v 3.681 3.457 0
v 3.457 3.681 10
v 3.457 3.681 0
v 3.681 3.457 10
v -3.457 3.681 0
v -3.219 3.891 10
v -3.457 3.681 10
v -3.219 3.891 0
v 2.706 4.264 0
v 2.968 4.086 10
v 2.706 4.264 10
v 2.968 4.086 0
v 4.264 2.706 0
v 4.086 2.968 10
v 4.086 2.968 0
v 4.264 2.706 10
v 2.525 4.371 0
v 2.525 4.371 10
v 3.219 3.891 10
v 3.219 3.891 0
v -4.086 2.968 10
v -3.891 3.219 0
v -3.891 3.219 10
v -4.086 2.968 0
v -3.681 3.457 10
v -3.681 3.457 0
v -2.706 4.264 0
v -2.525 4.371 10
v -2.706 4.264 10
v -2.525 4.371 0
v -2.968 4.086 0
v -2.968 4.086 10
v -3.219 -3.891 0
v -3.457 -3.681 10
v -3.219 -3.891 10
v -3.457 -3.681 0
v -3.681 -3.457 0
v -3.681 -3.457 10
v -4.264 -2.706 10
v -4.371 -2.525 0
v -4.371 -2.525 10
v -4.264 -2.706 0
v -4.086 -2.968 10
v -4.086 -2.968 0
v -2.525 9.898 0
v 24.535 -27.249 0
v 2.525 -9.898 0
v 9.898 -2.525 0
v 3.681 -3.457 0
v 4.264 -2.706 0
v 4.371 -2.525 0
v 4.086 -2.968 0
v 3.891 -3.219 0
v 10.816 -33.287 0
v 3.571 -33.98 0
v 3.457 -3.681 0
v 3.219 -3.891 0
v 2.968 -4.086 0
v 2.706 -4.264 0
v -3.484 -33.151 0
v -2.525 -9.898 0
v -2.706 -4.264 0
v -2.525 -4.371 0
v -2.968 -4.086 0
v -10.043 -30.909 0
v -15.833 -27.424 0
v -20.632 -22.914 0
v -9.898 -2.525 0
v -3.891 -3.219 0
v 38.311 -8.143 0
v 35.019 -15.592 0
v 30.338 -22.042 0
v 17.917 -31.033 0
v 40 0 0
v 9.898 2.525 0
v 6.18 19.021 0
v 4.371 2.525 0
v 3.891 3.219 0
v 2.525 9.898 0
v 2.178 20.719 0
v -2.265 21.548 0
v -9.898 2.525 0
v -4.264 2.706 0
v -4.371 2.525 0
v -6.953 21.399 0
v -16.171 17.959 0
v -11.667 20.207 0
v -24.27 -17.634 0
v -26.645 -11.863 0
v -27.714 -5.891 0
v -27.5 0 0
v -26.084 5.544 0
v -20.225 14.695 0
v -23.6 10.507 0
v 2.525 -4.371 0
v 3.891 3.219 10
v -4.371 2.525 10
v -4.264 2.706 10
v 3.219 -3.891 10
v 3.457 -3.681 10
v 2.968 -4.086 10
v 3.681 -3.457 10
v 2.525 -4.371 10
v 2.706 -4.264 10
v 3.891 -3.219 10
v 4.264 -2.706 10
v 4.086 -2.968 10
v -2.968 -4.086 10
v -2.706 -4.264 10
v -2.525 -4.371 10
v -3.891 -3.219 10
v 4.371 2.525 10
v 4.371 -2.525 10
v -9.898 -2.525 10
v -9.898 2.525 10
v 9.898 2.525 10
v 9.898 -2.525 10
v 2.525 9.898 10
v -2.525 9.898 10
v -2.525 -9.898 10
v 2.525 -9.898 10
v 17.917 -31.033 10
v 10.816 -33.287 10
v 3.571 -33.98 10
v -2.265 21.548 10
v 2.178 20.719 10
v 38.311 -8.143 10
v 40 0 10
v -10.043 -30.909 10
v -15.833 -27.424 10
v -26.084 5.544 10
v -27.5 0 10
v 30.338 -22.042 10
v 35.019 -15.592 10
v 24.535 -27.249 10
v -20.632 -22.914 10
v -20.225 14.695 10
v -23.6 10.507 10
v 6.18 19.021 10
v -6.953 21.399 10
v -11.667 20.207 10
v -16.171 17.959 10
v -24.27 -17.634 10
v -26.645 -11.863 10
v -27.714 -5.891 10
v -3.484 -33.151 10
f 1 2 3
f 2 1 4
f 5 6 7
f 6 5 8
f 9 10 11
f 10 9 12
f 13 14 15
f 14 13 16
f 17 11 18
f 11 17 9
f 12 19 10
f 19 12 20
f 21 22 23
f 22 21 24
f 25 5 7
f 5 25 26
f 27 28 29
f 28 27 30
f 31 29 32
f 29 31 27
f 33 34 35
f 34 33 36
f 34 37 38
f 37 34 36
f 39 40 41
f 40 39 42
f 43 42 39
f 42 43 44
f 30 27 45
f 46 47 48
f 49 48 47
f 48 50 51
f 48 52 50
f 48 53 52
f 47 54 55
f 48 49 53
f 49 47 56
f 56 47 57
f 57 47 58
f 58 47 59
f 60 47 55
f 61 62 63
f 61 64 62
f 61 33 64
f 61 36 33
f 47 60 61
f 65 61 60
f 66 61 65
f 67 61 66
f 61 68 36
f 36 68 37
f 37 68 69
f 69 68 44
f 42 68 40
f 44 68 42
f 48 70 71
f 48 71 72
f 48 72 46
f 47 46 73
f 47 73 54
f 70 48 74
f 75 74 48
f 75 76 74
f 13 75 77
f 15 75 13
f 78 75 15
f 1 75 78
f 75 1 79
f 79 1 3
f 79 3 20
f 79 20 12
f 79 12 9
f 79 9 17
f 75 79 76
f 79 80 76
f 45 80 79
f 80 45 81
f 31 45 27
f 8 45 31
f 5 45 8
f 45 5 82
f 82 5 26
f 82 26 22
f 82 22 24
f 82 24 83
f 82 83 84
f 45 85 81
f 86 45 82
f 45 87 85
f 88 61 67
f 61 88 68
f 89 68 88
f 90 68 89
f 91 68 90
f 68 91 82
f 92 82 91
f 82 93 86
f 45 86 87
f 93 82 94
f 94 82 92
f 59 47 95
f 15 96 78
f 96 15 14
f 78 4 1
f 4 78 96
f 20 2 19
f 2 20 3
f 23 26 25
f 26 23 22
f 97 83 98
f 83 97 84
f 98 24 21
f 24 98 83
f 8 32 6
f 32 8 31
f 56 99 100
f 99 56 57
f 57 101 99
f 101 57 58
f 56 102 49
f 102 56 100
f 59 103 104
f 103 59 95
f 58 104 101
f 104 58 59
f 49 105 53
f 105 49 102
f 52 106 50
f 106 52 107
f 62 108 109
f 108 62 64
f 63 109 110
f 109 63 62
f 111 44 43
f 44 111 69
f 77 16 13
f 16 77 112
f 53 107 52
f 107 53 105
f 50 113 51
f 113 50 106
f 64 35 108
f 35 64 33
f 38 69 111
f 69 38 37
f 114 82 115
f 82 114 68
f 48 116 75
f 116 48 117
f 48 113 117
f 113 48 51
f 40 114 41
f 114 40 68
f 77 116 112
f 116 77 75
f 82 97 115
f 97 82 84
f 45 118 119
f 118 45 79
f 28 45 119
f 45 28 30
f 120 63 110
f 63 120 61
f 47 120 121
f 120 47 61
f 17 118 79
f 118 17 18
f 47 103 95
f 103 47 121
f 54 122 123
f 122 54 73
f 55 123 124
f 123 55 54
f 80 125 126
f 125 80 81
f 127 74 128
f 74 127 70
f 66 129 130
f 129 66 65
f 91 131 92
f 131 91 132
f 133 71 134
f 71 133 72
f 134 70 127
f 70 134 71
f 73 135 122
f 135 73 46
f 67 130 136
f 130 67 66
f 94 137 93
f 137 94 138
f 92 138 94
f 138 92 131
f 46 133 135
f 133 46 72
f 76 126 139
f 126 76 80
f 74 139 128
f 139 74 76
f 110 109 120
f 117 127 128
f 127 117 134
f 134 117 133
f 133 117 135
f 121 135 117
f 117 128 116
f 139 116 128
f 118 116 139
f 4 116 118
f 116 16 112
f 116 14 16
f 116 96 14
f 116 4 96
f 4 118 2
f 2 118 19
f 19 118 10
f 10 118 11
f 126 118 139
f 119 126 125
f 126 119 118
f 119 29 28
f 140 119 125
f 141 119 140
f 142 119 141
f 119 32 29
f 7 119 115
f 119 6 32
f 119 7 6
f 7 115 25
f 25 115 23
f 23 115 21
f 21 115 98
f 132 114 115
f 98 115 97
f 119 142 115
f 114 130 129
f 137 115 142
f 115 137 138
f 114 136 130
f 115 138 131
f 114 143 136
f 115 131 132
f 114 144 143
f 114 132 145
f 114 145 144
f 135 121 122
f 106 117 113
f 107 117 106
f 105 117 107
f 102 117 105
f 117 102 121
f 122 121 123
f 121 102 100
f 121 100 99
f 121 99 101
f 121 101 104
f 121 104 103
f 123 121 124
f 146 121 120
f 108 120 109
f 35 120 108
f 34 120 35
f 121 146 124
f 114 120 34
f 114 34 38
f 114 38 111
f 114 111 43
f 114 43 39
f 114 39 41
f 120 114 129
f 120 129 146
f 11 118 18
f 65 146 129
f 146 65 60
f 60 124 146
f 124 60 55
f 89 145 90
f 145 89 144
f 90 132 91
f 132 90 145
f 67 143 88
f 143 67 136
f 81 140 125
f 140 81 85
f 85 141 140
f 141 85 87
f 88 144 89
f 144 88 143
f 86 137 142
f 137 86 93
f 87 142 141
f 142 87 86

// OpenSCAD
// file: lib/dogs.scad
$fn=100;


dogblock = [20,20,10];
//dog(dogblock, type="small");
//dog(dogblock, type="large");
//cornerdog(dogblock, type="small");
//cornerdog(dogblock, type="large");
//handle(dogblock[2], "small");
//handle(dogblock[2], "large");
//pressureplate(dogblock[2]);

//pressurespiral(5, 10, 15);
//pressurespiral2(dogblock[2], 10, 15);
//turnkeyspiral(dogblock[2],"large", 20, 10); //biggest one that can fit on the sides
//turnkeyspiral(dogblock[2],"large", 60, 30);
//turnkeyspiral(dogblock[2],"large", 40, 15);
//spiralhandle();

//turnkey (dogblock[2]*2, "small");
//turnkey (dogblock[2]*2, "large");


module spiralhandle() {
    height=5;
    difference() {
        hull() {
            cylinder(height, 15, 15);
            translate([55,0,0]) cylinder(height,d=15);
        }
        // scale it one percent so the key will certainly fit
        rotate([0,0,45]) scale([1.01,1.01,1.01]) turnkey(height, "large"); 
    }
    
}
//Handle to clamp the stock
//the outer circle isn't concentric to the center one (in the hole)
//by turning it we put pressure on the material. Due to friction it
//stays in place
//Turn them upside down and you can use them as a wedge to lock the
//stock in place.
//Todo:  must have the geometry wrong, as the pressure functionality
//doesn't work yet.  It can be used as a wedge though.
module handle(h, type) {
  //we use half of the height to allow the use of "pressure" plates
  //to offer more flexibility
    
    //we don't use the half height to avoid friction when turning the handle
    height = h*0.48; 
    
    dogcyl(h, type);
    hull() {
        cylinder(height, 15, 15);
        translate([55,0,0]) cylinder(height,d=15);
    }
    //cylinder on the back to keep it flat on the bed
    translate([55,0,0]) cylinder(h,d=15);
    
    platediameter = dogdiameter(type);
    shift = dogdiameter("large")-platediameter;
    //cylinder to use pressure plate
    //depending on the size we need to shift it a bit
    //we won't make two types of pressure plates
    translate([0,-shift,0]) cylinder(h,d=dogdiameter("large")*2);
    //the line above should be a spiral
}

//We want to create a spiral, that with an equal amount of turning the
//presure increases equallly
//As such, for every degree turned, the pressure point should increase with
//the same distance
module pressurespiral(h, mind, maxd) {
    cyld = 1;
    travel = maxd-mind;
    degrees = 360;
    steps = 60;
    stepinc = degrees/steps;
    steptravel = travel/(steps*stepinc);
    
    
    for(i = [0:stepinc:degrees]) {
        rotate([0,0,i]) translate([mind-cyld/2+i*steptravel,0,0])
            cylinder(h,d=cyld);
    }
}

//improved pressurespiral using polygon (more efficient to generate)
module pressurespiral2(h, mind, maxd) {
    cyld = 1;
    travel = maxd-mind;
    degrees = 360;
    steps = 30; //deliberately not too much steps to provide enough friction
    stepinc = degrees/steps;
    steptravel = travel/(steps*stepinc);

    points=[
        for(i = [0:stepinc:degrees])
            [
                (mind+i*steptravel) * cos(i),
                (mind+i*steptravel) * sin(i)
            ]
    ];
    
    //add the hull as the space it fills up anyway, and the extra volume
    //should provide some extra strength
    hull()
        linear_extrude(h) polygon(points);
}


module turnkeyspiral (h, type, maxd, mind) {
    
    keywidth = 5;
    keylength = 2*mind;
    difference() {
        pressurespiral2(h, mind, maxd);
        // scale it one percent so the key will certainly fit
        scale([1.01,1.01,1.01]) turnkey (h, type); 
    }
}

module turnkey (h, type) {
    maxd = 2*dogdiameter("large")*0.99; // slightly reduce to make sure it fits the plate well
    mind = maxd - 10;
    keywidth = 5;
    keylength = 2*mind;
        translate([0,-dogdiameter(type)/2,0]) dogcyl(h,type);
        translate([-keylength/2,-keywidth/2,0]) cube([keylength,keywidth,h]);
        rotate([0,0,90]) translate([-keylength/2,-keywidth/2,0]) cube([keylength,keywidth,h]);
   
}

module pressureplate(h) {
    //we don't use the half height to avoid friction when turning the handle
    height = h*0.48;
    dia = dogdiameter("large");
    difference() {
        cube([40,50,height]);
        translate([dia+5, dia+10,0]) cylinder(h,d=dia*2+1); //1mm larger to allow to turn
    }
}



//dog with 90 degree corner section
module cornerdog(s, type) {
    difference() {
        union() {
            half=[s[0]/2,s[1],s[2]];
            translate([-3,0,0]) finnedblock(s);
            translate([0,-s[1]+3,0]) rotate([0,0,90]) finnedblock(s);
            rotate([0,0,45]) translate([-half[0]/2,0,0]) finnedblock(half);
            d = dogdiameter (type);
            translate([-d/2,0,0]) dogcyl(s[2],type);
            
        }
        cylinder(s[2],2,2);
        translate([0,0,s[2]]) sphere(r=2);
    }
}


//complete dog with finned block and dogcylinder
module dog(s, type) {
    finnedblock(s);
    translate([s[0]/2,0]) {
        dogcyl(s[2], type);
    }    
}

//finned block to save some material when printing
module finnedblock(s,finwidth=3, findepthratio=0.7) {
    x=s[0];
    y=s[1];
    z=s[2];
    cube([x,y*(1-findepthratio),z]);
    
    //optimize by creating fins to reduce material
    //there are always an uneven number of fins; always a fin at the ends
    fincount = ceil((x/finwidth)/2);
    fingap = (x - fincount*finwidth)/(fincount-1);
    findepth = findepthratio*y;

    for(i=[0:fincount-1]) {
        translate([i*(fingap+finwidth),y-findepth,0]) {
        cube([finwidth, findepth, z], center=false);
        }
    }    
}

//cylinder to match the holes in the snapmaker wasteboard
//possible for both the large holes (used for the clamps)
//and small holes used for screwing the wasteboard to the bed
module dogcyl(h, type) {
    //OpenScad doesn't have real variables, so we can assign oonly once
    cyldiameter = dogdiameter(type);
    cylheight   = h + dogheight(type);
    cylminidiameter
                = dogminidiameter(type);
    cylminiheight
                = dogminiheight(type);
    
    translate([0,cyldiameter/2,0]) {
        cylinder(h=cylheight,d=cyldiameter);
        translate([0,0,cylheight]) {
            cylinder(h=cylminiheight,d=cylminidiameter);
        }
    }
}


//parameters to fill in
//depth and diameter of large holes
largedepth = 3.75;
largediameter = 10.00;
//and the minipart
largeminidepth = 2.50;
largeminidiameter = 3.00;

//depth and diameter of small holes
smalldepth = 3.85;
smalldiameter = 8.00;
//amd the minipart
smallminidepth=1.50;
smallminidiameter=2.40;

//OpenScad doesn't have real variables, so we can assign oonly once
//So we define some conenience functions to get the value we need for
//the parameters
//For an unknow type we return 0.  Some kind of exception might be better
function dogdiameter (type) =   type=="large" ? largediameter : 
                                type=="small" ? smalldiameter :
                                0;
function dogheight (type)   =   type=="large" ? largedepth : 
                                type=="small" ? smalldepth :
                                0;
function dogminidiameter (type)
                            =   type=="large" ? largeminidiameter : 
                                type=="small" ? smallminidiameter :
                                0;
function dogminiheight (type)
                            =   type=="large" ? largeminidepth : 
                                type=="small" ? smallminidepth :
                                0;
// main file
include <lib/dogs.scad>

turnkeyspiral(dogblock[2],"large", 40, 15);
